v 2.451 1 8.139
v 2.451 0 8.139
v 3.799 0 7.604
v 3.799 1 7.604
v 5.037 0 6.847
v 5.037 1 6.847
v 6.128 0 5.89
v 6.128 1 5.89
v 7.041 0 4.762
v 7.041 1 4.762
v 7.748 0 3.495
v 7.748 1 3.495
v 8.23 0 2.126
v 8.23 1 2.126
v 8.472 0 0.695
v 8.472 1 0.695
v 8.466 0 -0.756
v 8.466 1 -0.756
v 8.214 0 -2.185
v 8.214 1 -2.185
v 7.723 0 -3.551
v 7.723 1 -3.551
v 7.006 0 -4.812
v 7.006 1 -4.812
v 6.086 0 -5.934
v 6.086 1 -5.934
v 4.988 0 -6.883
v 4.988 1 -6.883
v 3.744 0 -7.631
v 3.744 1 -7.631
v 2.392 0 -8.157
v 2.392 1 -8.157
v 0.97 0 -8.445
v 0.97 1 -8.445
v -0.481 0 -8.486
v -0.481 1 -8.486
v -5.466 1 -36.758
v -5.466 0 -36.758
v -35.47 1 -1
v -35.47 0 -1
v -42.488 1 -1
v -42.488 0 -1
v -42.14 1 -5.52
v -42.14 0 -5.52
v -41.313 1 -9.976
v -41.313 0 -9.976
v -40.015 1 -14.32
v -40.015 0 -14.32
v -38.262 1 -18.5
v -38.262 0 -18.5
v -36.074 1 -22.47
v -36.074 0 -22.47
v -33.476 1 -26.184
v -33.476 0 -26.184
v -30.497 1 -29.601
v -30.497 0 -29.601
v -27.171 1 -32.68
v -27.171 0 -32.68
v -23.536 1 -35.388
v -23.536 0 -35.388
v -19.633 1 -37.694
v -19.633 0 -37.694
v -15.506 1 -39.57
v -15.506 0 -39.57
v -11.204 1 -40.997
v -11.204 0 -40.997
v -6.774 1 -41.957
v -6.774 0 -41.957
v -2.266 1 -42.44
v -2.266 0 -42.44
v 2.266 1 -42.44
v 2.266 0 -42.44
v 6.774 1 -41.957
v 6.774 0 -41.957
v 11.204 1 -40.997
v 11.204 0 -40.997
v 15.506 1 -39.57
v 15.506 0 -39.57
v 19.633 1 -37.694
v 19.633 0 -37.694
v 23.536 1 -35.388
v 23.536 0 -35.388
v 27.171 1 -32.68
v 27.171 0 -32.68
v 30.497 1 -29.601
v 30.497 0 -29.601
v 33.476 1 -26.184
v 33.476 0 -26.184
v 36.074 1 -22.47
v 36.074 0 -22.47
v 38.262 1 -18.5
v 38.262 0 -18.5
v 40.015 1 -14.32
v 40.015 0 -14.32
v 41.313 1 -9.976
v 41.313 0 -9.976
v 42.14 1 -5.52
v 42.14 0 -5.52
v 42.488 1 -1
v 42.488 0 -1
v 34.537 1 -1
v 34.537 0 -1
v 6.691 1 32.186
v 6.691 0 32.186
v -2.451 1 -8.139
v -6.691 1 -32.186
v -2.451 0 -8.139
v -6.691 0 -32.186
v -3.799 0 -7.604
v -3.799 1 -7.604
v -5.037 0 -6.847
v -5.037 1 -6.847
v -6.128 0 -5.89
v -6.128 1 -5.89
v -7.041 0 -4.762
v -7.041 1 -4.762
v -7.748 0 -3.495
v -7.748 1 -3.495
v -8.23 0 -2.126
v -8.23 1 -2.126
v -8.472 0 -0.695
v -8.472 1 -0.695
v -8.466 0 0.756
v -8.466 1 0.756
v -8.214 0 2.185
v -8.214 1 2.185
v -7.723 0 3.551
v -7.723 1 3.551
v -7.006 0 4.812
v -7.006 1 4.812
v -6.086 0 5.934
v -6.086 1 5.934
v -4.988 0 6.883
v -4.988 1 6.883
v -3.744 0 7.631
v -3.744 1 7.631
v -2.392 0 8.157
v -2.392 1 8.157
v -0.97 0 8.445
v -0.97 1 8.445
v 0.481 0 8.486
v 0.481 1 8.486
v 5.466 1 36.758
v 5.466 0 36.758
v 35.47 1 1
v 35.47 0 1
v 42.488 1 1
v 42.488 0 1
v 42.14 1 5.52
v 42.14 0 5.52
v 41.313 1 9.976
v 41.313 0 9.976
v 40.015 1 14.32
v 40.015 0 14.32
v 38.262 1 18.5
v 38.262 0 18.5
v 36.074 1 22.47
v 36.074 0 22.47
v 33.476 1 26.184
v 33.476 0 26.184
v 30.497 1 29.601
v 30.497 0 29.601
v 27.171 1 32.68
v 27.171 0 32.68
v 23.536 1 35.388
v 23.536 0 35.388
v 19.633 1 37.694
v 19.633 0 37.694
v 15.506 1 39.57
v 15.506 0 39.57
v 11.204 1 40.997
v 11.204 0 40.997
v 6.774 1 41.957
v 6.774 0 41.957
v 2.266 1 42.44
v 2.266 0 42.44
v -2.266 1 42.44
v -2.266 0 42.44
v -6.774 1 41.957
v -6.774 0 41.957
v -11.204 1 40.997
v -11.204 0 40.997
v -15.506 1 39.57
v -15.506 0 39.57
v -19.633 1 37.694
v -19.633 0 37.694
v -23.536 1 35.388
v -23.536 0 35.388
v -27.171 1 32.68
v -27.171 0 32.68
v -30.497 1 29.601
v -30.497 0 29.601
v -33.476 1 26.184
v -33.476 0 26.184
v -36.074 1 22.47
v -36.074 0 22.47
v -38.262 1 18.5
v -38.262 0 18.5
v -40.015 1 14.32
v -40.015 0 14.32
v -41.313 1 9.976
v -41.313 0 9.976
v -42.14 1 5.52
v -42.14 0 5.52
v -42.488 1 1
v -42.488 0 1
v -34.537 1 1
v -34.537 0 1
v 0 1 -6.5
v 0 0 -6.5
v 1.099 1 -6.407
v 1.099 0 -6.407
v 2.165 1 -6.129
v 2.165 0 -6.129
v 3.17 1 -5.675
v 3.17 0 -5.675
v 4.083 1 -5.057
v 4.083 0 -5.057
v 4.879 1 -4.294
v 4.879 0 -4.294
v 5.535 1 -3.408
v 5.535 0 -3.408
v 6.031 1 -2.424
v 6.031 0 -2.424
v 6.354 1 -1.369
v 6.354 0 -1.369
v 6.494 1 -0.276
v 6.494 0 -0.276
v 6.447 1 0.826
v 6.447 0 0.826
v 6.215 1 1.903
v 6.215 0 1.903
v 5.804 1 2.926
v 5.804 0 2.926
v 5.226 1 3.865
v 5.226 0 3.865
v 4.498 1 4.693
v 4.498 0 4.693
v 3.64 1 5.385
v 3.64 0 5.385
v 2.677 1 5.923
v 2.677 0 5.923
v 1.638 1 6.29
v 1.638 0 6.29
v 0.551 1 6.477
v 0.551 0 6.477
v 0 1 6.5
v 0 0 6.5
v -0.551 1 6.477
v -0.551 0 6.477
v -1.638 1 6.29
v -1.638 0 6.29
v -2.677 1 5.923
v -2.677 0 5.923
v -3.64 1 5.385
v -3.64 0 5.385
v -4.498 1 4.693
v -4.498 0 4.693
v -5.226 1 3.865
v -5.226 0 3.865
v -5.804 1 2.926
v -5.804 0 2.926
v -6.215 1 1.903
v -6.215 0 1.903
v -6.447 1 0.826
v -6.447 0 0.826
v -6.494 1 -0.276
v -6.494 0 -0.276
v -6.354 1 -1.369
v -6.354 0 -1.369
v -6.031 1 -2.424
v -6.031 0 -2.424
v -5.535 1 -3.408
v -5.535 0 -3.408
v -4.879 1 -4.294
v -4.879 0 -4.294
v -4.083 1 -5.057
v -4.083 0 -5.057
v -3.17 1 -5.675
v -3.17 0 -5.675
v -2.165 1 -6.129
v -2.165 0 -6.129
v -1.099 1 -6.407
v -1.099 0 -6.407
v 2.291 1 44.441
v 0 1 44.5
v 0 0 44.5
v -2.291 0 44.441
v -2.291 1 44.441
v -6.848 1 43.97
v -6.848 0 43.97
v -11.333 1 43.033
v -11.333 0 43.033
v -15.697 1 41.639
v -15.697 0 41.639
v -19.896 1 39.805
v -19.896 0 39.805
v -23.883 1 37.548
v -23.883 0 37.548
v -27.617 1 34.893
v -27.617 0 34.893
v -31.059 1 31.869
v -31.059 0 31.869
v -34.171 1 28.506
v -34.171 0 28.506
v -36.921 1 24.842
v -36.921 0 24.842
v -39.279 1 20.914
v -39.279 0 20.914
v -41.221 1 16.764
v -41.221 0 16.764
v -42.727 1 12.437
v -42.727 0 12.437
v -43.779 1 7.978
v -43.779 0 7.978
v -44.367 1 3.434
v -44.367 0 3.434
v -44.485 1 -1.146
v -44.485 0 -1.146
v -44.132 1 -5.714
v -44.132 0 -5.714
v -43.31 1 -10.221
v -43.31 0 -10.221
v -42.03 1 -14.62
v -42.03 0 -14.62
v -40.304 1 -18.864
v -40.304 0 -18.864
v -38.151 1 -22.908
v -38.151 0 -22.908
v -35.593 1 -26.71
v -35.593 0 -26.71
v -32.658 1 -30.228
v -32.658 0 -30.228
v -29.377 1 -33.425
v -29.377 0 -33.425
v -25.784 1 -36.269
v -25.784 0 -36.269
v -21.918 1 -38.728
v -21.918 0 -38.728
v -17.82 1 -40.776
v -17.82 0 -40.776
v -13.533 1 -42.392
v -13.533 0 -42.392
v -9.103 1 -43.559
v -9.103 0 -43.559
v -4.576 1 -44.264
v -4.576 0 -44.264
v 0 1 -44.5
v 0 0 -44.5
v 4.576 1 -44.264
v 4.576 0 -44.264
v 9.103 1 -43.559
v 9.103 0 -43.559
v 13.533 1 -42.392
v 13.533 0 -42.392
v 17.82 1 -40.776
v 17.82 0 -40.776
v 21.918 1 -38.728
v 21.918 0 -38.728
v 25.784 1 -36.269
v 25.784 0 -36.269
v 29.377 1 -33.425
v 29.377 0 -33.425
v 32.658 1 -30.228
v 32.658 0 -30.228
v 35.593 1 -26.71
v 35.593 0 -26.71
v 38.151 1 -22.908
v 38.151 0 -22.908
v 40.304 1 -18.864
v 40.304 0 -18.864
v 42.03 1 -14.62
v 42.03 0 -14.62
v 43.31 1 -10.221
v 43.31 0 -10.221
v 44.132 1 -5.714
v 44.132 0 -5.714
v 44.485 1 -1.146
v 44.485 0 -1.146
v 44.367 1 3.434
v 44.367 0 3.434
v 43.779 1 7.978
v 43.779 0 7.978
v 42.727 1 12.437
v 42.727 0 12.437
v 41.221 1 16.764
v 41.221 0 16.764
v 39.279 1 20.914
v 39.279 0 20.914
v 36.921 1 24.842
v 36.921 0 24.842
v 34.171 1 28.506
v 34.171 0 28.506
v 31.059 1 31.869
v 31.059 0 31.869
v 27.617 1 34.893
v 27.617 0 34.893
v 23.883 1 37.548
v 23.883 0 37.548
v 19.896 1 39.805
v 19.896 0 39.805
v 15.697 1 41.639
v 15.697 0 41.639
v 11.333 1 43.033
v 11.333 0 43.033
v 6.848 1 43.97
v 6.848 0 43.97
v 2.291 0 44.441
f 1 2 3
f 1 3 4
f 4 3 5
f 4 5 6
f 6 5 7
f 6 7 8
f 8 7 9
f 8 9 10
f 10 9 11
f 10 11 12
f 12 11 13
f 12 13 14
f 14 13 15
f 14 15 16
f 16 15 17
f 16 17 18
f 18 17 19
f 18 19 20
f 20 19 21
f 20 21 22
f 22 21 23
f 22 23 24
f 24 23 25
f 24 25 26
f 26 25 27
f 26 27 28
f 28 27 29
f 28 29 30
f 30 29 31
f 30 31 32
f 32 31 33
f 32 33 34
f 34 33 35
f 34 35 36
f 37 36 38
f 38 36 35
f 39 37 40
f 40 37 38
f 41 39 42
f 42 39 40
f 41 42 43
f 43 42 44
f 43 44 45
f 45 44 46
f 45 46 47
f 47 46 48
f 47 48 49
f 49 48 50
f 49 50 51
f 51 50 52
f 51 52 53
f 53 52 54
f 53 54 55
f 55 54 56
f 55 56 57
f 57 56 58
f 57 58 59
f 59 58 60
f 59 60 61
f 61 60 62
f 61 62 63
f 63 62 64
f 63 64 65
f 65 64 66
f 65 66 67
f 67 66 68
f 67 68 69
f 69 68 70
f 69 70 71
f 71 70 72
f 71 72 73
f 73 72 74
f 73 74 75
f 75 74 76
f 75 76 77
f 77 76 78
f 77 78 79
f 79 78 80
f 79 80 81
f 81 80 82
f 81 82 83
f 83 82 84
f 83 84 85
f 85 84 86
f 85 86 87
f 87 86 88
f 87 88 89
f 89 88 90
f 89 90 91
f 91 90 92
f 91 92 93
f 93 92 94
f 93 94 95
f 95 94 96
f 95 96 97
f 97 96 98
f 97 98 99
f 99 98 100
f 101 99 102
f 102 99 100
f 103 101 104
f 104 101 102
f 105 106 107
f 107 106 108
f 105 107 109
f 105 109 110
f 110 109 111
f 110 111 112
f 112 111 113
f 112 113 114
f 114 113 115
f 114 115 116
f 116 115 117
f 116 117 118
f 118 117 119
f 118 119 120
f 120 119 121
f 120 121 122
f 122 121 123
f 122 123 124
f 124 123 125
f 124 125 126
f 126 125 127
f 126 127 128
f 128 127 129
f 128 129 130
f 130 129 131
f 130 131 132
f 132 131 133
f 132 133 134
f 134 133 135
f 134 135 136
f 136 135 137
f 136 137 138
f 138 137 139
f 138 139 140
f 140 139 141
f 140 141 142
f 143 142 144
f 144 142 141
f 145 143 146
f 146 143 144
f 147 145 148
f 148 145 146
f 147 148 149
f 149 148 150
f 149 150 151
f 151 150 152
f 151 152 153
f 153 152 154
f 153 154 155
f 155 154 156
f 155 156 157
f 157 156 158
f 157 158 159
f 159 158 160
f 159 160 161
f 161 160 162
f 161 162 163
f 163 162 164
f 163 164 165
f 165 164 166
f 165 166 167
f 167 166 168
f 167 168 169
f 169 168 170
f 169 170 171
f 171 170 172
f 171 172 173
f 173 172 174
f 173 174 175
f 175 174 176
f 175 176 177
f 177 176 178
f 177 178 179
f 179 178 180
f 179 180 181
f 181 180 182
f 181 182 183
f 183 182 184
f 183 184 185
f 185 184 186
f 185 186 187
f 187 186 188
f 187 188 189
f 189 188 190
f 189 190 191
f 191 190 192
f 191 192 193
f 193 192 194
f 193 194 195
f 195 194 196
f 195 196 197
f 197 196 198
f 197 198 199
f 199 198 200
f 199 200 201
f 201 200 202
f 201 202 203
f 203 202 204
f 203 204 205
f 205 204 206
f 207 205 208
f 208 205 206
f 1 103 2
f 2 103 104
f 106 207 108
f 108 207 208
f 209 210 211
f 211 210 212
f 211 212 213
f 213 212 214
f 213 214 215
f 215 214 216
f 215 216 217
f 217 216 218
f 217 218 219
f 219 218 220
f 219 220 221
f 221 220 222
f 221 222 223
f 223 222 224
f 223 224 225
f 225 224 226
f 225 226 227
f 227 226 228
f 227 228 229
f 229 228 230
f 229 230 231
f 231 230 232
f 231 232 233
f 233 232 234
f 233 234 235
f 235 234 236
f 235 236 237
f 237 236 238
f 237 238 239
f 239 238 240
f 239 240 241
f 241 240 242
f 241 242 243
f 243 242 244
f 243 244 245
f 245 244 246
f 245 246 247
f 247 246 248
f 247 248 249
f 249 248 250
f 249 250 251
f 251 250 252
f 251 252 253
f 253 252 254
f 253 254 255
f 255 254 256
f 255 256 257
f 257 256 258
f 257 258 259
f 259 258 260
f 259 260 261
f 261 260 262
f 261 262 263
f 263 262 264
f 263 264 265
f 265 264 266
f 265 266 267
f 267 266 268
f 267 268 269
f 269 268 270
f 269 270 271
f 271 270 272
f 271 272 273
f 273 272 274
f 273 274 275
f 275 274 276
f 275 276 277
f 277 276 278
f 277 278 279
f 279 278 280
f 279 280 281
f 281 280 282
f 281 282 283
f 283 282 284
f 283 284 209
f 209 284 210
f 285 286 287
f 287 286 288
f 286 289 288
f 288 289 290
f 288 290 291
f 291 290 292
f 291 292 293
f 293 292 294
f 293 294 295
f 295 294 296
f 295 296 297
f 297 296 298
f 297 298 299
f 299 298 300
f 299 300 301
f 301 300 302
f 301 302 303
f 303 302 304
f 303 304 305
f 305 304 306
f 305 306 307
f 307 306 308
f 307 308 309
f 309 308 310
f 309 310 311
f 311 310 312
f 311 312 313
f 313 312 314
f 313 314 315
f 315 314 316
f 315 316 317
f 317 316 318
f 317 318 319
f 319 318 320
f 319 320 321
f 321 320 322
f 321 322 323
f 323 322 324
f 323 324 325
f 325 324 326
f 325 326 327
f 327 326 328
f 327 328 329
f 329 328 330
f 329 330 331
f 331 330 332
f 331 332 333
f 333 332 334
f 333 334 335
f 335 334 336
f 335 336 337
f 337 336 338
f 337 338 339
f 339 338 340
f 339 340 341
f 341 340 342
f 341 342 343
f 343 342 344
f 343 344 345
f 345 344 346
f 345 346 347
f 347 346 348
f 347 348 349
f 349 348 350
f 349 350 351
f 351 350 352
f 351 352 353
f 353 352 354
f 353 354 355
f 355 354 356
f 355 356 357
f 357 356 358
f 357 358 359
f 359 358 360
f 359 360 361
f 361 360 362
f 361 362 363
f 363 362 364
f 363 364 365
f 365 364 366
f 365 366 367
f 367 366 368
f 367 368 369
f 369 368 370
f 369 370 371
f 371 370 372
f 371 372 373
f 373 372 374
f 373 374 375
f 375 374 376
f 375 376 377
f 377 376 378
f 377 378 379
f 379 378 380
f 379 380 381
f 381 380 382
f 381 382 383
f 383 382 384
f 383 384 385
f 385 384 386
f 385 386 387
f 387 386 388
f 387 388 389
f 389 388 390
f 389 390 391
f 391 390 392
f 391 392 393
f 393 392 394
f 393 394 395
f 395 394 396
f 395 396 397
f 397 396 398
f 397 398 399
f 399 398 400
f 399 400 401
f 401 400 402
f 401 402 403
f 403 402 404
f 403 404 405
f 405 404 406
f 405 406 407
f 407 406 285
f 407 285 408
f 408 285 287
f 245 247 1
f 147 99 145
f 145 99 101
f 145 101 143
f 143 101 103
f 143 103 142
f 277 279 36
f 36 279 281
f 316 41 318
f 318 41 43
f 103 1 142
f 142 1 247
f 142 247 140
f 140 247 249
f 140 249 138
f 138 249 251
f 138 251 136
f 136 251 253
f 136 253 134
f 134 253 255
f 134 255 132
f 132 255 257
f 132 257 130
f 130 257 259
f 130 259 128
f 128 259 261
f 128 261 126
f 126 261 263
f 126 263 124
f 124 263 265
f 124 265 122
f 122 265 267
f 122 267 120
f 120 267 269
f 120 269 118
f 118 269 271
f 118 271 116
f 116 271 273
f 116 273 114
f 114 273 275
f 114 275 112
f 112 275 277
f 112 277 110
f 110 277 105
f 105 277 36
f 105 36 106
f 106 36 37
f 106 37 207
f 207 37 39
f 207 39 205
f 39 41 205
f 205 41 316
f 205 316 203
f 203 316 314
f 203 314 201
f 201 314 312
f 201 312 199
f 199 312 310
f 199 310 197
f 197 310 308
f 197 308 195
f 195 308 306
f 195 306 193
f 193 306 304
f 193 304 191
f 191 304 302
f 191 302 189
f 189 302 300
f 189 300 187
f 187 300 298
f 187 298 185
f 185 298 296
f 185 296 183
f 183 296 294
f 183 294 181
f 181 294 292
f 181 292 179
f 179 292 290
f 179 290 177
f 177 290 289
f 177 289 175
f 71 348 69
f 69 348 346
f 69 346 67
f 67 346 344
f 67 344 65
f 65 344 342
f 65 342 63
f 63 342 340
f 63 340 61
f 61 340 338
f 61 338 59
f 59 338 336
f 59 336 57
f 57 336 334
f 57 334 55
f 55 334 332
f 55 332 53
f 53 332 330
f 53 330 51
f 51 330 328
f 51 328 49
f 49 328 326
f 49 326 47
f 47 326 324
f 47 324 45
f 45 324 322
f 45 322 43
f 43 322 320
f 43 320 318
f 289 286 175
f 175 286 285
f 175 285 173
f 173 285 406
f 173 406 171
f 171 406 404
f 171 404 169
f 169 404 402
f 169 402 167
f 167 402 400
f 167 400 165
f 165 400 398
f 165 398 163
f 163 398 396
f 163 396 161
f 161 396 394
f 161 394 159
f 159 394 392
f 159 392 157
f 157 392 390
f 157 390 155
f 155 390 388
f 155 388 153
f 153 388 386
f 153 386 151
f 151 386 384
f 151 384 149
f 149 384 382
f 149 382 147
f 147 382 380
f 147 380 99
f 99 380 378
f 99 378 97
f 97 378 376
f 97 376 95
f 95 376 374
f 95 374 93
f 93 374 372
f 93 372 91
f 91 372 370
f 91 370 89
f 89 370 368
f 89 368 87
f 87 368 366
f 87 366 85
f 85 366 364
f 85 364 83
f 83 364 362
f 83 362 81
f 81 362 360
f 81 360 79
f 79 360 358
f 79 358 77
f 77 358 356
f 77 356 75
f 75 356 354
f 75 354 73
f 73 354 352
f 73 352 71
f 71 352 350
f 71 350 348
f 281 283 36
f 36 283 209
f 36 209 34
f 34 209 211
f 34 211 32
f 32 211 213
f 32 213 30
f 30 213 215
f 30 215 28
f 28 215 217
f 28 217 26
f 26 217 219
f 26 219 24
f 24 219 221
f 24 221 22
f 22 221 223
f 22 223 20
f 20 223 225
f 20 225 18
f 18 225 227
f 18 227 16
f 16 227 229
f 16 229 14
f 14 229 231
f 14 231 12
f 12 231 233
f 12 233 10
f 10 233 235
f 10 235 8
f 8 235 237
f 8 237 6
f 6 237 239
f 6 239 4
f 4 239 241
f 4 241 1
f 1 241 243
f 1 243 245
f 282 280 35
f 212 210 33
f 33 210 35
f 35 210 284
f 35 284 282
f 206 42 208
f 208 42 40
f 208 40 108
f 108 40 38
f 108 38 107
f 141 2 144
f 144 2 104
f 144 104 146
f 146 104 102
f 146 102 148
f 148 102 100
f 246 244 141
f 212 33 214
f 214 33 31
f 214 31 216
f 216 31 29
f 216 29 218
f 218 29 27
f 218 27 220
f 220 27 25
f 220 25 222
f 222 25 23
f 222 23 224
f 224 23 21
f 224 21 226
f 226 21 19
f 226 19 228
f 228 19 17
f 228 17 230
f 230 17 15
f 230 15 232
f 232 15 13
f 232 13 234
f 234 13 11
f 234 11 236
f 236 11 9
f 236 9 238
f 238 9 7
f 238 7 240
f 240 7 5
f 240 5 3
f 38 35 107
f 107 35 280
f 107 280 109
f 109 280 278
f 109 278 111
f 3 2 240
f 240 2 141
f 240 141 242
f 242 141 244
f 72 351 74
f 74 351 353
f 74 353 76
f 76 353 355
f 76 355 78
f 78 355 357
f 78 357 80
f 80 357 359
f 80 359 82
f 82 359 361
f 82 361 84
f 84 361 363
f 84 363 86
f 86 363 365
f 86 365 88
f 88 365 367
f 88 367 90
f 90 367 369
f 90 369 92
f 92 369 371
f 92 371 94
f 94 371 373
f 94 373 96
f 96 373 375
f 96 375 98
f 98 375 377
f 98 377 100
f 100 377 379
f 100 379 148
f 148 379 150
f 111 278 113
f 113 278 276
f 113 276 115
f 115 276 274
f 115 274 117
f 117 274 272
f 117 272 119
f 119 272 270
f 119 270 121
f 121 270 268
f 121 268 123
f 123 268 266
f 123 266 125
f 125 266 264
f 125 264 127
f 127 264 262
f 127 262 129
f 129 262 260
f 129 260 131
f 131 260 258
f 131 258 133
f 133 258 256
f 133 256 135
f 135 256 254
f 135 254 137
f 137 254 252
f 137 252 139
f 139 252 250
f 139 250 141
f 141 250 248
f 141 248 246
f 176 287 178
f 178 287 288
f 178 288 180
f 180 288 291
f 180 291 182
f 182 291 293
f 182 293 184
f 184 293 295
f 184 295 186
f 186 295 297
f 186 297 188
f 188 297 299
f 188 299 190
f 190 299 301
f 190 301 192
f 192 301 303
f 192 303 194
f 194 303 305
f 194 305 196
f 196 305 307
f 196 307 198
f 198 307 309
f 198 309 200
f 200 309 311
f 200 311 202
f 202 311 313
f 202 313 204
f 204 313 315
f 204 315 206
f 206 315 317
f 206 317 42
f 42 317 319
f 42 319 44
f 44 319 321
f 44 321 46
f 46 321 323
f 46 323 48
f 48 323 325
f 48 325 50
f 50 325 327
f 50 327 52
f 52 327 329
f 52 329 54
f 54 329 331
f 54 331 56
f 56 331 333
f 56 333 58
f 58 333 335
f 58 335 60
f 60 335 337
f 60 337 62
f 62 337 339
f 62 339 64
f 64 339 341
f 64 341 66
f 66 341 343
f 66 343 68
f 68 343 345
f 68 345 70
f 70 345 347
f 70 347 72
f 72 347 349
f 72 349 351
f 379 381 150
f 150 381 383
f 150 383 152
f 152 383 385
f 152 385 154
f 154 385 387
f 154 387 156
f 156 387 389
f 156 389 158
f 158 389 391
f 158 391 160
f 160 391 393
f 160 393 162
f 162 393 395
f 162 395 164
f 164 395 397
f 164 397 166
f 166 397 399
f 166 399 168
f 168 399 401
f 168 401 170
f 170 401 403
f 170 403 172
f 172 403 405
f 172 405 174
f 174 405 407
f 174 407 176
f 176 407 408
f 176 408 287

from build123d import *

# Parameters (mm, degrees)
SKETCH_1_R      = 44.5
SKETCH_1_R_2    = 42.5
EXTRUDE_7_DEPTH = 1


with BuildPart() as part:
    # Эскиз1 → Бобышка-Вытянуть7 (new body)
    # profile 1 of 9: a face of its own
    with BuildSketch(Plane(origin=(0, 0, 0), x_dir=(1, 0, 0), z_dir=(0, 1, 0))):
        with Locations(Location((0, 0, 0), (0, 0, 270))):
            Circle(SKETCH_1_R)
        Circle(SKETCH_1_R_2, mode=Mode.SUBTRACT)
    # profile 2 of 9: a face of its own
    with BuildSketch(Plane(origin=(0, 0, 0), x_dir=(1, 0, 0), z_dir=(0, 1, 0))):
        with BuildLine():
            Line((-35.470093763, 1), (-42.488233665, 1))
            ThreePointArc((-42.488233665, 1), (-42.5, 0), (-42.488233665, -1))
            Line((-42.488233665, -1), (-34.537478446, -1))
            Line((-34.537478446, -1), (-6.690761703, 32.186424721))
            Line((-6.690761703, 32.186424721), (-2.450567073, 8.139086006))
            ThreePointArc((-2.450567073, 8.139086006), (-1.47600951, 8.370865901), (-0.480951567, 8.486382362))
            Line((-0.480951567, 8.486382362), (-5.465925634, 36.75757516))
            Line((-5.465925634, 36.75757516), (-35.470093763, 1))
        make_face()
    # profile 3 of 9: a face of its own
    with BuildSketch(Plane(origin=(0, 0, 0), x_dir=(1, 0, 0), z_dir=(0, 1, 0))):
        with BuildLine():
            ThreePointArc((8.5, 0), (5.837889673, 6.17811008), (-0.480951567, 8.486382362))
            Line((-0.480951567, 8.486382362), (-0.130467861, 6.498690494))
            ThreePointArc((-0.130467861, 6.498690494), (4.549832904, 4.64209226), (6.5, 0))
            ThreePointArc((6.5, 0), (5.28680158, -3.781498255), (2.100083368, -6.151394139))
            Line((2.100083368, -6.151394139), (2.450567073, -8.139086006))
            ThreePointArc((2.450567073, -8.139086006), (6.822016568, -5.070511802), (8.5, 0))
        make_face()
    # profile 4 of 9: a face of its own
    with BuildSketch(Plane(origin=(0, 0, 0), x_dir=(1, 0, 0), z_dir=(0, 1, 0))):
        with BuildLine():
            Line((-0.130467861, 6.498690494), (-0.480951567, 8.486382362))
            ThreePointArc((-0.480951567, 8.486382362), (-1.47600951, 8.370865901), (-2.450567073, 8.139086006))
            Line((-2.450567073, 8.139086006), (-2.100083368, 6.151394139))
            ThreePointArc((-2.100083368, 6.151394139), (-1.128713155, 6.401250395), (-0.130467861, 6.498690494))
        make_face()
    # profile 5 of 9: a face of its own
    with BuildSketch(Plane(origin=(0, 0, 0), x_dir=(1, 0, 0), z_dir=(0, 1, 0))):
        with BuildLine():
            ThreePointArc((0.480951567, -8.486382362), (1.47600951, -8.370865901), (2.450567073, -8.139086006))
            Line((2.450567073, -8.139086006), (2.100083368, -6.151394139))
            ThreePointArc((2.100083368, -6.151394139), (1.128713155, -6.401250395), (0.130467861, -6.498690494))
            Line((0.130467861, -6.498690494), (0.480951567, -8.486382362))
        make_face()
    # profile 6 of 9: a face of its own
    with BuildSketch(Plane(origin=(0, 0, 0), x_dir=(1, 0, 0), z_dir=(0, 1, 0))):
        with BuildLine():
            Line((-2.100083368, 6.151394139), (-2.450567073, 8.139086006))
            ThreePointArc((-2.450567073, 8.139086006), (-8.370865901, -1.47600951), (0.480951567, -8.486382362))
            Line((0.480951567, -8.486382362), (0.130467861, -6.498690494))
            ThreePointArc((0.130467861, -6.498690494), (-6.401250395, -1.128713155), (-2.100083368, 6.151394139))
        make_face()
    # profile 7 of 9: a face of its own
    with BuildSketch(Plane(origin=(0, 0, 0), x_dir=(1, 0, 0), z_dir=(0, 1, 0))):
        with BuildLine():
            ThreePointArc((42.5, 0), (42.497058315, 0.50003461), (42.488233665, 1))
            Line((42.488233665, 1), (34.537478446, 1))
            Line((34.537478446, 1), (6.690761703, -32.186424721))
            Line((6.690761703, -32.186424721), (2.450567073, -8.139086006))
            ThreePointArc((2.450567073, -8.139086006), (1.47600951, -8.370865901), (0.480951567, -8.486382362))
            Line((0.480951567, -8.486382362), (5.465925634, -36.75757516))
            Line((5.465925634, -36.75757516), (35.470093763, -1))
            Line((35.470093763, -1), (42.488233665, -1))
            ThreePointArc((42.488233665, -1), (42.497058315, -0.50003461), (42.5, 0))
        make_face()
    # profile 8 of 9: a face of its own
    with BuildSketch(Plane(origin=(0, 0, 0), x_dir=(1, 0, 0), z_dir=(0, 1, 0))):
        with BuildLine():
            Line((-0.130467861, 6.498690494), (-0.480951567, 8.486382362))
            ThreePointArc((-0.480951567, 8.486382362), (-1.47600951, 8.370865901), (-2.450567073, 8.139086006))
            Line((-2.450567073, 8.139086006), (-2.100083368, 6.151394139))
            ThreePointArc((-2.100083368, 6.151394139), (-1.128713155, 6.401250395), (-0.130467861, 6.498690494))
        make_face()
    # profile 9 of 9: a face of its own
    with BuildSketch(Plane(origin=(0, 0, 0), x_dir=(1, 0, 0), z_dir=(0, 1, 0))):
        with BuildLine():
            ThreePointArc((0.480951567, -8.486382362), (1.47600951, -8.370865901), (2.450567073, -8.139086006))
            Line((2.450567073, -8.139086006), (2.100083368, -6.151394139))
            ThreePointArc((2.100083368, -6.151394139), (1.128713155, -6.401250395), (0.130467861, -6.498690494))
            Line((0.130467861, -6.498690494), (0.480951567, -8.486382362))
        make_face()
    extrude(amount=EXTRUDE_7_DEPTH)


solid = part.part
